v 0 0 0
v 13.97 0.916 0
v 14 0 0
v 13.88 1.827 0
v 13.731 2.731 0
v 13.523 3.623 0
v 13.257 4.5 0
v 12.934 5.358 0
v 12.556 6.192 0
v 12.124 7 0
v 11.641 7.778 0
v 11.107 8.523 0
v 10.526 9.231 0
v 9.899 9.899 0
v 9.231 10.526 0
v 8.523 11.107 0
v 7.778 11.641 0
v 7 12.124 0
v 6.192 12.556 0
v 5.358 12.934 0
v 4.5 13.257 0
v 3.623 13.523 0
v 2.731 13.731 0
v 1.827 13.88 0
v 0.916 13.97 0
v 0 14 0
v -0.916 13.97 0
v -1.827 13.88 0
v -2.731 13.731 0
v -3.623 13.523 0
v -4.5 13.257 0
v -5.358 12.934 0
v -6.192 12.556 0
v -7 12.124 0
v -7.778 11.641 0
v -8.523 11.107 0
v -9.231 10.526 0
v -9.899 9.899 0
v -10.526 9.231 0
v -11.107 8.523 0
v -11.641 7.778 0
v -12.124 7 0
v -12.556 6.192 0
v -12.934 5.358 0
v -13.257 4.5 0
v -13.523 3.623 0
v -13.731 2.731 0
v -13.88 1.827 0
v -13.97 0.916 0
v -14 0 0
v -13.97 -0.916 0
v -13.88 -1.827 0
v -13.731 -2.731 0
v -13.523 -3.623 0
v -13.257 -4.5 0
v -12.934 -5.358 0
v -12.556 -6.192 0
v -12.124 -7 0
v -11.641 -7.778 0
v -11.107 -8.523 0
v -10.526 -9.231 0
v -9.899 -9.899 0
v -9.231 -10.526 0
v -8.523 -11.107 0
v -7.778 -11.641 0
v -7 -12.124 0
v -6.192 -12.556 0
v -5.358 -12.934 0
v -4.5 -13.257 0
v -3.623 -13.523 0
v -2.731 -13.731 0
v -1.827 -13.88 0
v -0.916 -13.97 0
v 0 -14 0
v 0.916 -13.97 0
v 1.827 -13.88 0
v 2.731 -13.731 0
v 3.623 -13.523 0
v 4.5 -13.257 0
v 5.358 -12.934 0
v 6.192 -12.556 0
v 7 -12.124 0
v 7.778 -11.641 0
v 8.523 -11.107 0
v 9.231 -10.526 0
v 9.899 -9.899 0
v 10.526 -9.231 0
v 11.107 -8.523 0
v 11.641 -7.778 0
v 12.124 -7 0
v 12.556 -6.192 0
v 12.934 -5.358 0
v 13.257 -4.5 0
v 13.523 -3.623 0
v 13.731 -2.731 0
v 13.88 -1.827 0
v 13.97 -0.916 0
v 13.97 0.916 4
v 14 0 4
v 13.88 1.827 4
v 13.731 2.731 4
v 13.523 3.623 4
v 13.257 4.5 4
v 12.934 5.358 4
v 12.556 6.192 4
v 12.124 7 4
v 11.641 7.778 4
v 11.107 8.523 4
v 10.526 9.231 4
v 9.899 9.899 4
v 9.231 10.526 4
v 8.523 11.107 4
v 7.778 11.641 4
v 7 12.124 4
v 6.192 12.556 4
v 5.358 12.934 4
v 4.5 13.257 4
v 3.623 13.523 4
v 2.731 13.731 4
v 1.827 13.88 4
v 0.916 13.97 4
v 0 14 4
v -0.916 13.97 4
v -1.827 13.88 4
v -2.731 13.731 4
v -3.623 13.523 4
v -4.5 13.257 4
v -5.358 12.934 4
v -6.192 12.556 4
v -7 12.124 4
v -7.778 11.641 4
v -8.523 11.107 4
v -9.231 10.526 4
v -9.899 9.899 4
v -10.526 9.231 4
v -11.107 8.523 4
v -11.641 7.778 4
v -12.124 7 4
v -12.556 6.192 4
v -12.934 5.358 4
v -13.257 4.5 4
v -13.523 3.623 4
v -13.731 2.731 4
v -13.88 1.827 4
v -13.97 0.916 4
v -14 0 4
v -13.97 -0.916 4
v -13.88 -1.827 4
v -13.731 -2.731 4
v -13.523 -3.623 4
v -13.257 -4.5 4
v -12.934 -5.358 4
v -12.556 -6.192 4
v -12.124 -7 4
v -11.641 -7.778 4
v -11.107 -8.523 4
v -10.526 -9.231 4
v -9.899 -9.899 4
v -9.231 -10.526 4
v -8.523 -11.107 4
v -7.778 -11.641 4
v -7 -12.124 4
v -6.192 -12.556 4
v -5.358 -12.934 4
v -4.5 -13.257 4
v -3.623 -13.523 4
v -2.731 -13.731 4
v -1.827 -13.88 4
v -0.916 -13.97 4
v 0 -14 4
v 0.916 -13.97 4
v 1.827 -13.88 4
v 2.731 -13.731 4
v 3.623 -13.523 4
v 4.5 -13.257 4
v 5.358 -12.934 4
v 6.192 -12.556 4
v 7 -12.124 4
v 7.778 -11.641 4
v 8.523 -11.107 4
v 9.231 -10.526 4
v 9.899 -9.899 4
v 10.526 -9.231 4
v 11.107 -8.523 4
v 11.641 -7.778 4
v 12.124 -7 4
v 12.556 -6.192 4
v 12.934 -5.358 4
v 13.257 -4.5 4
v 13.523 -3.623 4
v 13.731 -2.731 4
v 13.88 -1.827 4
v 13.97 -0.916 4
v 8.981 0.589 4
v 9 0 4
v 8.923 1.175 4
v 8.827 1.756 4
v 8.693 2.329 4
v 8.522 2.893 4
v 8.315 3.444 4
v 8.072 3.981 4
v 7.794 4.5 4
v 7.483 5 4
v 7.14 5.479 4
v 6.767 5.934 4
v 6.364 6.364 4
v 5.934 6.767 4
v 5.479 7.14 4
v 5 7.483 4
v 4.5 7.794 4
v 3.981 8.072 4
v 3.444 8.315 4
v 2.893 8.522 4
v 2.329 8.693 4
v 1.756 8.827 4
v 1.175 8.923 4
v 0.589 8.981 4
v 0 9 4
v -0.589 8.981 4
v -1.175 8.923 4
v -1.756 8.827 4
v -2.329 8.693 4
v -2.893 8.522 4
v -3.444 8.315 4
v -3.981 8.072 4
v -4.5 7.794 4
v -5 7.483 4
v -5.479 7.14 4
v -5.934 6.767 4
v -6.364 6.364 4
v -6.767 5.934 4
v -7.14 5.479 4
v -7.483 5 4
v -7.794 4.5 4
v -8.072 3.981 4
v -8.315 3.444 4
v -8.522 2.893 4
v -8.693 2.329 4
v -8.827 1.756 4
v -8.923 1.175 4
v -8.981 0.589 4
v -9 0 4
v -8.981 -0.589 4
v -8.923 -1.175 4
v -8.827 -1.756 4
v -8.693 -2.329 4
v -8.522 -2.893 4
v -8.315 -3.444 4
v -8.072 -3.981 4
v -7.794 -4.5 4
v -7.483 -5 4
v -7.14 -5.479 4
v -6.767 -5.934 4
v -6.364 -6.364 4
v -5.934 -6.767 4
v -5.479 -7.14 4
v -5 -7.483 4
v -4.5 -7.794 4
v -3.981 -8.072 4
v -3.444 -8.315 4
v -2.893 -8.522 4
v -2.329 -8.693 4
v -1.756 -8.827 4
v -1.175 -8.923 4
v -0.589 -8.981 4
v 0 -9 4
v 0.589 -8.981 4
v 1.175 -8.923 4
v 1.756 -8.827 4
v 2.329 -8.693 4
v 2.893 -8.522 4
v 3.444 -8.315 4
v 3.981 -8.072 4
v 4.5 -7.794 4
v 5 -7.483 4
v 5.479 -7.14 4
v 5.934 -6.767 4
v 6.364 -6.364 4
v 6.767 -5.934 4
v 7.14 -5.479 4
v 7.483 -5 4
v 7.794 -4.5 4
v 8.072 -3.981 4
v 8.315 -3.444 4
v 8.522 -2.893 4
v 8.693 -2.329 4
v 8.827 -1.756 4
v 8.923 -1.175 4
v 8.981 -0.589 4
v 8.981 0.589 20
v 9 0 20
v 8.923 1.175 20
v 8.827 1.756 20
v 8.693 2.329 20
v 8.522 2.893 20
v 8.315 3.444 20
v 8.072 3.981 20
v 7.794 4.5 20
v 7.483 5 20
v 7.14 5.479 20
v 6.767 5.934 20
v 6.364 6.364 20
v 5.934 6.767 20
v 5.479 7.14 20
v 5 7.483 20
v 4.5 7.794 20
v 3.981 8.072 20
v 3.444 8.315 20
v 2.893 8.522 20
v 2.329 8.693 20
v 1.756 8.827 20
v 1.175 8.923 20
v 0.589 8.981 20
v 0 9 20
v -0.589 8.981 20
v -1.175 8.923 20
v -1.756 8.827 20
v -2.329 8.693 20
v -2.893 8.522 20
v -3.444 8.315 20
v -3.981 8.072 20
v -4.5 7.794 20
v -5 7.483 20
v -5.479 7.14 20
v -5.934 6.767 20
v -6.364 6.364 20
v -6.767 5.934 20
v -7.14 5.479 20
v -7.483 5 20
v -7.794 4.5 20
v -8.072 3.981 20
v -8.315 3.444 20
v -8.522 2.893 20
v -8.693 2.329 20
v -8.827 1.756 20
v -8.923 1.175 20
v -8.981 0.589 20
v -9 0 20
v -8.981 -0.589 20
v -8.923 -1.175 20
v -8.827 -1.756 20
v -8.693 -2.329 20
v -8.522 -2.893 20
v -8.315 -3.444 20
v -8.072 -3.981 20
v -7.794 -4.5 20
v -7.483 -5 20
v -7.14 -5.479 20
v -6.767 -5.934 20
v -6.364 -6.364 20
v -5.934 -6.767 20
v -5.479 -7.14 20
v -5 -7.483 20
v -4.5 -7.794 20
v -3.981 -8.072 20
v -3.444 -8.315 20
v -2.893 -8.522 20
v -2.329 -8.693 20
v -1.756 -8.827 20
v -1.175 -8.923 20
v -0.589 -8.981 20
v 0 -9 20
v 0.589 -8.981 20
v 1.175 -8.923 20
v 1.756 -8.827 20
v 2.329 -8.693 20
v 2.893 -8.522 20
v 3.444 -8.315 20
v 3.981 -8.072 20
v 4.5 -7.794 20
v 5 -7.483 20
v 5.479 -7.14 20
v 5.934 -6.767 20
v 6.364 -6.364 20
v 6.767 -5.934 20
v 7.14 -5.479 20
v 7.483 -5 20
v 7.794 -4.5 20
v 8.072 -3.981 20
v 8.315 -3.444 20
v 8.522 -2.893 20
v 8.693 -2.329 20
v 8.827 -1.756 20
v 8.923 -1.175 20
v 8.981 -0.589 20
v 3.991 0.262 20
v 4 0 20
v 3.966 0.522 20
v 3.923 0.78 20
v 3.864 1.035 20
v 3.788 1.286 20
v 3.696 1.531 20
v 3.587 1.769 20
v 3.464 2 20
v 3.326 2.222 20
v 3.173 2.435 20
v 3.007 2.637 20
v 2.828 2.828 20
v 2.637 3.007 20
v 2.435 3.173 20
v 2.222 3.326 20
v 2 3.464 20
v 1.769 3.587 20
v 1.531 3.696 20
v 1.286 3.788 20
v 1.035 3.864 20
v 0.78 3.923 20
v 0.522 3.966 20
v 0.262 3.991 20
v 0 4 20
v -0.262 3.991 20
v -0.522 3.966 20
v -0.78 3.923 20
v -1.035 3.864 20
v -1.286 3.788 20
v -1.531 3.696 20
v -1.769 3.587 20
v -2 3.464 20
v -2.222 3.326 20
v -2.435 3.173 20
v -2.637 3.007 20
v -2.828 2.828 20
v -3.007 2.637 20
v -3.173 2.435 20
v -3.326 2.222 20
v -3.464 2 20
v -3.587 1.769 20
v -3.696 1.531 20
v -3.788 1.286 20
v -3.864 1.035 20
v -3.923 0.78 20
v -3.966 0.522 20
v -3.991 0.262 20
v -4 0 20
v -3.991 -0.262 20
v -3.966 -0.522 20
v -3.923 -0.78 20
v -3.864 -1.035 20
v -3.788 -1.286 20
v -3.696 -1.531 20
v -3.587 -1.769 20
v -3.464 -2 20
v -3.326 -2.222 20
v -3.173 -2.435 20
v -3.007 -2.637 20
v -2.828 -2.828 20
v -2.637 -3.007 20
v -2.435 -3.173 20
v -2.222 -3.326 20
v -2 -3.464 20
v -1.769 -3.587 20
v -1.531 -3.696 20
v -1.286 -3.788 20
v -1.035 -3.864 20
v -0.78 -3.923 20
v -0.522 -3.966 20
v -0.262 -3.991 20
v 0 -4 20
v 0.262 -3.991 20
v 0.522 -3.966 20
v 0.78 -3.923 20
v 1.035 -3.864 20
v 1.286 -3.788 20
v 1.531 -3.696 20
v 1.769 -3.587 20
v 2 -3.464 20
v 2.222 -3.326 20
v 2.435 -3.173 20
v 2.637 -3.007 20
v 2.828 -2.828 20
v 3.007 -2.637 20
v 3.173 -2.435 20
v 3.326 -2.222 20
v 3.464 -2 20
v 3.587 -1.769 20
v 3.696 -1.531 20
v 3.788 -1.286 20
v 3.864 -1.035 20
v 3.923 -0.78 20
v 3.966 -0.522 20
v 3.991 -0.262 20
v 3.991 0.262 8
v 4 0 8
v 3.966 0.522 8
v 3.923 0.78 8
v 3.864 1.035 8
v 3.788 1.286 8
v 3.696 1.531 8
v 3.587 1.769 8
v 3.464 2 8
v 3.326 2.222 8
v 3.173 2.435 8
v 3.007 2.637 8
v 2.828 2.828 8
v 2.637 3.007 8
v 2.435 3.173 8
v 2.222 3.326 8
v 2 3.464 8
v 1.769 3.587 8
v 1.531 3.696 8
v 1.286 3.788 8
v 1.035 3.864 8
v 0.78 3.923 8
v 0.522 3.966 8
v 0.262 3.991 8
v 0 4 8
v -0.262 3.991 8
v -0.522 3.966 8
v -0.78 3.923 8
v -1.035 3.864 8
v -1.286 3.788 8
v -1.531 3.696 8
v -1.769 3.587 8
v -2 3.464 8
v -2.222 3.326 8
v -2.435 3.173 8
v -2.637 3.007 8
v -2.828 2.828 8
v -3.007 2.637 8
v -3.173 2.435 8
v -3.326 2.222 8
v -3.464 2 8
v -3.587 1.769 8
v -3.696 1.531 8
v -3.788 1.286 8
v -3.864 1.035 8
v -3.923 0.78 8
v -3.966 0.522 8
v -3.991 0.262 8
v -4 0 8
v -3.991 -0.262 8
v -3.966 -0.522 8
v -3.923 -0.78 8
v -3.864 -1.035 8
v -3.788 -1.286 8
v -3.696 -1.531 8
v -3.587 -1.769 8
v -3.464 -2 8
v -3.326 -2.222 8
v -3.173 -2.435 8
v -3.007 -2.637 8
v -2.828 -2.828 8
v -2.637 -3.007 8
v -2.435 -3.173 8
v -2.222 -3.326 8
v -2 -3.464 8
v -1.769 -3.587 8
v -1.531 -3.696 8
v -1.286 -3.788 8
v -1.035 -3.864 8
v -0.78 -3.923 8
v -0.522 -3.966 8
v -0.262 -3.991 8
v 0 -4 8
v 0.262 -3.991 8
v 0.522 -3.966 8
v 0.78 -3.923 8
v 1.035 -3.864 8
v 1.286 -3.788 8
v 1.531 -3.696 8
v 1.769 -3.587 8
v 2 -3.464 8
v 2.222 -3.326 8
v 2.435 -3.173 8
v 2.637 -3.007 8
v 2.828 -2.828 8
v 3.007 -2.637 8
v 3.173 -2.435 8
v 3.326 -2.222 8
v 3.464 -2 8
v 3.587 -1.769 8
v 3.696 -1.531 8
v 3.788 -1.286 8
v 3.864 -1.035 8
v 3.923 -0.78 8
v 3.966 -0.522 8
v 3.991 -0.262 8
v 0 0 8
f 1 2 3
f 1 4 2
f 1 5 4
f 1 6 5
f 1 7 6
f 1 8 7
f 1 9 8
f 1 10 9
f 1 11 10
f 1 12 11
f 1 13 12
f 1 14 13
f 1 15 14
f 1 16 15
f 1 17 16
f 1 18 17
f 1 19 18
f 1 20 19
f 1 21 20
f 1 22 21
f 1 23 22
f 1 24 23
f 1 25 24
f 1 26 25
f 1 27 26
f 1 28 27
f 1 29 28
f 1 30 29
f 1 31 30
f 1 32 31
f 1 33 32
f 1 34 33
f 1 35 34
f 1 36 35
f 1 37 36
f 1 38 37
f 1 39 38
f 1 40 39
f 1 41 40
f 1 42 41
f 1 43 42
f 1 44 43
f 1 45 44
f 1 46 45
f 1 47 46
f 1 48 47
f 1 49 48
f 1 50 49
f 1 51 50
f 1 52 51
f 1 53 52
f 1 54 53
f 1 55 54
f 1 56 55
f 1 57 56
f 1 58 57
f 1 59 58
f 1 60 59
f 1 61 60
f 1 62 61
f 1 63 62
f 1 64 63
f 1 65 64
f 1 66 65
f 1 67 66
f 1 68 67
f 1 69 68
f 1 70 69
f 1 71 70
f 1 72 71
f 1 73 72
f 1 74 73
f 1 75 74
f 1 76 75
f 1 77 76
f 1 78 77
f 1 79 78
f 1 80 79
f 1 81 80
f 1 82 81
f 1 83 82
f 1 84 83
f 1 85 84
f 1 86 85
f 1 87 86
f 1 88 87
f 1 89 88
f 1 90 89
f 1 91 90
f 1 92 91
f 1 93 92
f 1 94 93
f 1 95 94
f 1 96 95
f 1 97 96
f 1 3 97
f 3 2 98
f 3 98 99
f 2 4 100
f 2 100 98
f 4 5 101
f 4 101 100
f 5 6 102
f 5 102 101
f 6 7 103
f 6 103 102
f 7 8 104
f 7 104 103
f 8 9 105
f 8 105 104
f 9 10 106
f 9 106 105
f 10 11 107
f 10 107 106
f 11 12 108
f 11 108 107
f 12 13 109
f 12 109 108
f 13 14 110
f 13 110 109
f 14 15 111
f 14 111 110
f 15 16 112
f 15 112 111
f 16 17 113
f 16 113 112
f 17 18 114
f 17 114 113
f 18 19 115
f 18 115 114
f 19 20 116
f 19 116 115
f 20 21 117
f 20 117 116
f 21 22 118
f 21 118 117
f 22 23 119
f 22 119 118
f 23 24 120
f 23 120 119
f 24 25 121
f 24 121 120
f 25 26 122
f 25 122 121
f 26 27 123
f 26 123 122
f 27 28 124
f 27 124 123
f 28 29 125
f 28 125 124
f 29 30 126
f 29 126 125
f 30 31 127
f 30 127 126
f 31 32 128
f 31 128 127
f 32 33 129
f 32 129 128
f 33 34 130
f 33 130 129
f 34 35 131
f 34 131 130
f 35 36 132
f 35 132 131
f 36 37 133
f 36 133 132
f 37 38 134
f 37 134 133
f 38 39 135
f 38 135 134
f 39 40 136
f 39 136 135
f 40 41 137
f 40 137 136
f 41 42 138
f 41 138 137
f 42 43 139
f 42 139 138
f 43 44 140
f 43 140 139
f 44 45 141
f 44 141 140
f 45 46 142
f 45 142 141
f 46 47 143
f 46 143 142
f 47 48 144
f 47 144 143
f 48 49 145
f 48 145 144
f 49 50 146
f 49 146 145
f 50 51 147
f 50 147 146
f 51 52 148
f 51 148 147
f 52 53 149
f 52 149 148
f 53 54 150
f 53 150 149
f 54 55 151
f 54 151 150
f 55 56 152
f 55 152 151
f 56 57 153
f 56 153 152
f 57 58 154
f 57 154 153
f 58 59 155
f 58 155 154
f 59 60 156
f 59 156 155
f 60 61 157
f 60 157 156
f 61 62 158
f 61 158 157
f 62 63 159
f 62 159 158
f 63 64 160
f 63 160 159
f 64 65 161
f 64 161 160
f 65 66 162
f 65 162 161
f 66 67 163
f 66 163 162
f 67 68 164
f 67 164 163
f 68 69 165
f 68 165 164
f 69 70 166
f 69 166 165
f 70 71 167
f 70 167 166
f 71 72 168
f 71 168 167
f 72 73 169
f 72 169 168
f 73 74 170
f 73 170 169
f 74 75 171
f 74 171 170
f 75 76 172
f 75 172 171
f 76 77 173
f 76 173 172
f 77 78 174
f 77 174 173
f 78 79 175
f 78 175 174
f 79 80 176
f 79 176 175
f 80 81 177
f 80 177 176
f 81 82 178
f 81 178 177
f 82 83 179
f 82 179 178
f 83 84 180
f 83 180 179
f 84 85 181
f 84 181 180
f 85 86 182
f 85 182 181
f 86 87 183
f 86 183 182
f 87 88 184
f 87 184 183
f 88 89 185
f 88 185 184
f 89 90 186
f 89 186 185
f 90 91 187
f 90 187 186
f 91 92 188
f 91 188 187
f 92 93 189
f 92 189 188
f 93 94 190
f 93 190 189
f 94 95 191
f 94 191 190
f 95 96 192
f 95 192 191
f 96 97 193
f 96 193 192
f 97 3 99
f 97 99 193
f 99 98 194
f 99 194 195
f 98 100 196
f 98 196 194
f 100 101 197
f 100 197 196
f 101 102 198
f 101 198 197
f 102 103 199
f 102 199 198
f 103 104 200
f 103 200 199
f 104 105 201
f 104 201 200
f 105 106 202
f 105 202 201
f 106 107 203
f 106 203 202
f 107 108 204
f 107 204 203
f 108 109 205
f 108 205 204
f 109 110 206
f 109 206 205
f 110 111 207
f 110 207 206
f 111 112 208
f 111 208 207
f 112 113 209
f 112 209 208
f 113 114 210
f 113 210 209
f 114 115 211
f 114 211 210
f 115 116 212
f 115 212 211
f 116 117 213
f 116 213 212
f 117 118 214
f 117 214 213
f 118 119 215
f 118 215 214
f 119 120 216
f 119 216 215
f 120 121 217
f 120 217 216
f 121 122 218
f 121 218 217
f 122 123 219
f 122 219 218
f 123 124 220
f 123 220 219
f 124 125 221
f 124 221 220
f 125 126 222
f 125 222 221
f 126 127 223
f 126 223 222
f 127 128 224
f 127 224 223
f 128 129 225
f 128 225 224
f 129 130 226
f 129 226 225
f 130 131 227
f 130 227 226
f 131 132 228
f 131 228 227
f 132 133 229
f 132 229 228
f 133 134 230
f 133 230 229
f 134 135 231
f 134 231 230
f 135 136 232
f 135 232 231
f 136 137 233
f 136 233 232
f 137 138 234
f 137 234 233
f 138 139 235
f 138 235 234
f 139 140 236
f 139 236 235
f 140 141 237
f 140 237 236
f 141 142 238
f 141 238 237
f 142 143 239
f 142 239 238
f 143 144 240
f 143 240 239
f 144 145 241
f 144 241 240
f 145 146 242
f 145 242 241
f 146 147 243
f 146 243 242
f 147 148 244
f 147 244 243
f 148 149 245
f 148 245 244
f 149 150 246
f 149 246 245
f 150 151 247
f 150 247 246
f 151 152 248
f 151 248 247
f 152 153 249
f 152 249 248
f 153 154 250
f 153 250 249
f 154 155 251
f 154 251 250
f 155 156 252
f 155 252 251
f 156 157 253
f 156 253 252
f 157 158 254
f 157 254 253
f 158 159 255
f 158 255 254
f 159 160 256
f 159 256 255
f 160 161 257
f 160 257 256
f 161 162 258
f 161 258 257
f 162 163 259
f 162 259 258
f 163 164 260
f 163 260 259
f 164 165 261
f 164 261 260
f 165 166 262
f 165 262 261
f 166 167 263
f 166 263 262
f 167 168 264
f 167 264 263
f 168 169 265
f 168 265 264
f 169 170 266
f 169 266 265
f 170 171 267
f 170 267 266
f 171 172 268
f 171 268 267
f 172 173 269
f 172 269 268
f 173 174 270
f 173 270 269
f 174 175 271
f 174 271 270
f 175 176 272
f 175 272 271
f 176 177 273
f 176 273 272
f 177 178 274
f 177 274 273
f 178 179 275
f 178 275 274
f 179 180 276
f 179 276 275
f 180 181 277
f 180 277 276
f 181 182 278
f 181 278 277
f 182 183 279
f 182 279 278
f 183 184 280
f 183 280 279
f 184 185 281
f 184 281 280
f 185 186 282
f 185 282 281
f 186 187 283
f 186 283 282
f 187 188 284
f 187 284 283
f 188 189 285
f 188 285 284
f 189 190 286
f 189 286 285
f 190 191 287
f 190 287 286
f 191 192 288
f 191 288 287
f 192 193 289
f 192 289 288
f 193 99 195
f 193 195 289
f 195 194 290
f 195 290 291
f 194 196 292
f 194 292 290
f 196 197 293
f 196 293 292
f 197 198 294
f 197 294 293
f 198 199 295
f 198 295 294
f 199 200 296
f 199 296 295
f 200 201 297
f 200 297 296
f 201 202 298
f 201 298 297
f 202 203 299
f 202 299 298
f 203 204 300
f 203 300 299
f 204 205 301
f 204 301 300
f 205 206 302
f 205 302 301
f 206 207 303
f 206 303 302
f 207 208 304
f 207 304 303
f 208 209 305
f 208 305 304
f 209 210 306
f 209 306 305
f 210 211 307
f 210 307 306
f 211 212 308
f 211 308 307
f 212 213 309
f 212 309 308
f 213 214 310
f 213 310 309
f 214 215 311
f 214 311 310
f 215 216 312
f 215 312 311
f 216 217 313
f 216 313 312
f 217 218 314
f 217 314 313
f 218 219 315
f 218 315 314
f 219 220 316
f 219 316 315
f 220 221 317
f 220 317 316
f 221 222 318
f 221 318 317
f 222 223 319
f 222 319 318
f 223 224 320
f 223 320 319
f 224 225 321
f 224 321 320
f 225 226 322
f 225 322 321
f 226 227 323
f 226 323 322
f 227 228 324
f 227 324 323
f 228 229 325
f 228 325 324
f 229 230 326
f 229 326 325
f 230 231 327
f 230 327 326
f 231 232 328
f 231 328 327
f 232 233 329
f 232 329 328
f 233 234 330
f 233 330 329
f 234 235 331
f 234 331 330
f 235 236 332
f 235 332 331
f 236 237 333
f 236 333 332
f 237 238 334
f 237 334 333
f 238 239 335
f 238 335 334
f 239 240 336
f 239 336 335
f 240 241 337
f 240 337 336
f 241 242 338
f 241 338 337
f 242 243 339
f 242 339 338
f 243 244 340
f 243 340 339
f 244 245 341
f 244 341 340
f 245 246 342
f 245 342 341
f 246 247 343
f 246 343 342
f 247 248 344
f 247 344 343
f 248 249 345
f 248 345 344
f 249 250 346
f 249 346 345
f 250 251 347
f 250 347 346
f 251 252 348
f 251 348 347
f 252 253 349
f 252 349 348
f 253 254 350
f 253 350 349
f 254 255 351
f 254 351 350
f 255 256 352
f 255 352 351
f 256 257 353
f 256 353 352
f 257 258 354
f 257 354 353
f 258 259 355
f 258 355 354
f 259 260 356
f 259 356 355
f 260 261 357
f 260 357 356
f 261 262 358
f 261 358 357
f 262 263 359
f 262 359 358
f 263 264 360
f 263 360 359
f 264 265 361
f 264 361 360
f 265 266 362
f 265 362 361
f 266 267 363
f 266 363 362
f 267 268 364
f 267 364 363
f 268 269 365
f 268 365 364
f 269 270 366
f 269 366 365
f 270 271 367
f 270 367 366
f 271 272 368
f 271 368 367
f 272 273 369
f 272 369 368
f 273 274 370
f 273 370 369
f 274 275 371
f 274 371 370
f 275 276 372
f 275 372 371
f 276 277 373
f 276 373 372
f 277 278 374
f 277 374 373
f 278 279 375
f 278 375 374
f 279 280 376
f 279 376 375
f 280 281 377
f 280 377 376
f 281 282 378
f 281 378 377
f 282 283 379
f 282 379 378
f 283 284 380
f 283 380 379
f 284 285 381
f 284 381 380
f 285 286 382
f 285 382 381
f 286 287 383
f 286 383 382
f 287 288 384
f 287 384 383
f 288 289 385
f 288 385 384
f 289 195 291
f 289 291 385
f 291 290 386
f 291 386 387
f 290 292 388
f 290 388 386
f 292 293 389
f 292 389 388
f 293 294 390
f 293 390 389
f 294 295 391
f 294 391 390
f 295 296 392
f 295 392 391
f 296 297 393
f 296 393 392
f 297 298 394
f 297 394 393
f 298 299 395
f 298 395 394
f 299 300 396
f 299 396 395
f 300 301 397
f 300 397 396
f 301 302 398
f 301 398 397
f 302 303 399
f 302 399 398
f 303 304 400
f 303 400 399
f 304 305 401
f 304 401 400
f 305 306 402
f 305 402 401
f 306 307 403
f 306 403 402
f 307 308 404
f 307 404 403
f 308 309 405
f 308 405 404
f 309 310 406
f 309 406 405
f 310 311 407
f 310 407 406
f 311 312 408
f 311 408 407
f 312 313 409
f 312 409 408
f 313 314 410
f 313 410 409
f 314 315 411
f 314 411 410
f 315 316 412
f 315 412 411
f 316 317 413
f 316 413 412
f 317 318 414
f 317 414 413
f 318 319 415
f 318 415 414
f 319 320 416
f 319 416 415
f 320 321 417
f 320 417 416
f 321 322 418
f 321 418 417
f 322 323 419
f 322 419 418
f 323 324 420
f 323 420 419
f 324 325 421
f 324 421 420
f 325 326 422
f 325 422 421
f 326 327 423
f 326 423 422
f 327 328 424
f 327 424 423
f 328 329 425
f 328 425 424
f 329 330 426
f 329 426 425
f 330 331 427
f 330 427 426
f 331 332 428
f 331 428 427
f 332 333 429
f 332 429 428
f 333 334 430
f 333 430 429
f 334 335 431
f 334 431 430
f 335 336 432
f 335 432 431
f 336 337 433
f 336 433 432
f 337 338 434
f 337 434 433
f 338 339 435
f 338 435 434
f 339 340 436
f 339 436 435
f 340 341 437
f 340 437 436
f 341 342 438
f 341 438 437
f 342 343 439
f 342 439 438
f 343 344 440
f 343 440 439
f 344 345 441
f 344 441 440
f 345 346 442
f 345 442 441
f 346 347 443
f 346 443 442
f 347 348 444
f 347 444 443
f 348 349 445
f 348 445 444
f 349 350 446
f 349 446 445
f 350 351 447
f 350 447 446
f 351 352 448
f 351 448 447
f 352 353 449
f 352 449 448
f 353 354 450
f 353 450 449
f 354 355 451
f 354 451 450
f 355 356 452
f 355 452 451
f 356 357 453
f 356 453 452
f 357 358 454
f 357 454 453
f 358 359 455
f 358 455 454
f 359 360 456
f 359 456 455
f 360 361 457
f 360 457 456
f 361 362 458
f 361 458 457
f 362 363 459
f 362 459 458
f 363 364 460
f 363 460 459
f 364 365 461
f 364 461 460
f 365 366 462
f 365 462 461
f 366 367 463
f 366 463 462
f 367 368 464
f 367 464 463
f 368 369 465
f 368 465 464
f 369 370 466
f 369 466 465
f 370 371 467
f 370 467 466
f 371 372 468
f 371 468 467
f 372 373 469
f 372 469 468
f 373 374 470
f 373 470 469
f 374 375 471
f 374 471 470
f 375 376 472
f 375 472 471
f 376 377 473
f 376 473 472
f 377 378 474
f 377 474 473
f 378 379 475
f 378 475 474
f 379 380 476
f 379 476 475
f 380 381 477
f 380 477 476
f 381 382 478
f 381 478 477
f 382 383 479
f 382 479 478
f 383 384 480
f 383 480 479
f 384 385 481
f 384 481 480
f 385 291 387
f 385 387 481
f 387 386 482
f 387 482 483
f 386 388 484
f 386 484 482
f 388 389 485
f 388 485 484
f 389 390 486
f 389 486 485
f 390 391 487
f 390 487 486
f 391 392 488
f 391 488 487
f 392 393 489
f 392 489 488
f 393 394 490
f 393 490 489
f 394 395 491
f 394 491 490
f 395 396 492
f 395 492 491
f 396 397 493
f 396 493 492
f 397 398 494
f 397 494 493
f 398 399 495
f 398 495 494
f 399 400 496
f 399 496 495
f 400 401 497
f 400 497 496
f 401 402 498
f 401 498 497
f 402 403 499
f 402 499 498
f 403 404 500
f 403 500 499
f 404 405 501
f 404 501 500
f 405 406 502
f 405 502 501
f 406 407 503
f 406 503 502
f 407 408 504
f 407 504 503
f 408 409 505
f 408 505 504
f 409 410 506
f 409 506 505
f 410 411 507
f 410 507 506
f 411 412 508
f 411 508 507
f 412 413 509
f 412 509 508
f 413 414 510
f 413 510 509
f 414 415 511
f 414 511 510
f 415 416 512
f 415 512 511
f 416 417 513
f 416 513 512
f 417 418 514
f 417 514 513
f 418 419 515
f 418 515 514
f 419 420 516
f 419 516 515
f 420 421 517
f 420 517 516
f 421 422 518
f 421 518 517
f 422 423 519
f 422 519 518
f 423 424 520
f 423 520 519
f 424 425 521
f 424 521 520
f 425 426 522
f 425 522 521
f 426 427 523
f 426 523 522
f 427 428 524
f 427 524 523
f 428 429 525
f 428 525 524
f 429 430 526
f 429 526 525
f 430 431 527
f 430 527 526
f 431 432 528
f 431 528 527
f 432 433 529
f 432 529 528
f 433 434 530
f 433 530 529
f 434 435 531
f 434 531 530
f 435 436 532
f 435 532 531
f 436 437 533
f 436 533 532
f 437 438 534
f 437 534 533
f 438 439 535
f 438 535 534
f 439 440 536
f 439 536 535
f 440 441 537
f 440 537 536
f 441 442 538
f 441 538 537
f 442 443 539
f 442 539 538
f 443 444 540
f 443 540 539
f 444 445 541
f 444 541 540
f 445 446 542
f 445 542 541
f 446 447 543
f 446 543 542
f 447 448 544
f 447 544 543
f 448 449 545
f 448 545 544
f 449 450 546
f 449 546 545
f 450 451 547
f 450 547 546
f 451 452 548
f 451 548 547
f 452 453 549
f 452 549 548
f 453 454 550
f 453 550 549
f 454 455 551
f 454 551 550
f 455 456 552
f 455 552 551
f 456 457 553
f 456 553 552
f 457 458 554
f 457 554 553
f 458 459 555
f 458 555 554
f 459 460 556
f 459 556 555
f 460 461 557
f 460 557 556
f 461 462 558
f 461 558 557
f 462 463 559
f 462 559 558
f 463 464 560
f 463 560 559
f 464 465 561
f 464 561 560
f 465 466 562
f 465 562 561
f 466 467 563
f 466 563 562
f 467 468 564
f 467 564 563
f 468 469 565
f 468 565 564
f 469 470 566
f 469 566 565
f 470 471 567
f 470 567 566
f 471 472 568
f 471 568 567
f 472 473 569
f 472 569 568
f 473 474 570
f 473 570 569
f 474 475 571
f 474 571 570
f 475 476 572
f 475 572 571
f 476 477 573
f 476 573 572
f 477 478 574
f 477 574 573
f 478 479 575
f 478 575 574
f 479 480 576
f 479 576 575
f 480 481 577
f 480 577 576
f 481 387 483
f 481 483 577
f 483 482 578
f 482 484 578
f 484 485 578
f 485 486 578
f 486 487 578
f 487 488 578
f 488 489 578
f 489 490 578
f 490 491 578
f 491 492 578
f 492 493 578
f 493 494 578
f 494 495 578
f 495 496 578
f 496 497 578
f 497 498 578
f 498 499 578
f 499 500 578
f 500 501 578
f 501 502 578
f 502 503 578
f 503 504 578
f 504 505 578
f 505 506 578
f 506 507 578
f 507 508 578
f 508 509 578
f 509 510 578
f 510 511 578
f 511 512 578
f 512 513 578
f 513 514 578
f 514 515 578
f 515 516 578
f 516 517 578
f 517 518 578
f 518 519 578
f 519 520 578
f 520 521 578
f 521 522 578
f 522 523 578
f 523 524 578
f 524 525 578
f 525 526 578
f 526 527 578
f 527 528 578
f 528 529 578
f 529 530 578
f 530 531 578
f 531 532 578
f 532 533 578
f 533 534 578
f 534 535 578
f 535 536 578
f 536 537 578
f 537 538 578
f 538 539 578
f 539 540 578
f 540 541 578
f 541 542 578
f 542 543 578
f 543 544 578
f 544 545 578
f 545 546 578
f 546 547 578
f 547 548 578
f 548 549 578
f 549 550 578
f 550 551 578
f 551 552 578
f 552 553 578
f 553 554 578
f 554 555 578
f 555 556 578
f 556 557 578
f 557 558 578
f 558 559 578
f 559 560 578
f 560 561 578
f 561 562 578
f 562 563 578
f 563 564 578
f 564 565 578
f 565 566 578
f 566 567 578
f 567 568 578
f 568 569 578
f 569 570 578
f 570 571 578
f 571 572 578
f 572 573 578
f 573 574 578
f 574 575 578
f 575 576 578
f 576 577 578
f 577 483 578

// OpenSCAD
// Original MechIntel educational model. CC0-1.0. Units: mm.
// Not a standardized or load-rated component.
$fn=96;
// Section points: [radius, height], mm. Edit to change the profile.
section=[[0, 0], [14, 0], [14, 4], [9, 4], [9, 20], [4, 20], [4, 8], [0, 8]];
rotate_extrude($fn=96) polygon(points=section);
